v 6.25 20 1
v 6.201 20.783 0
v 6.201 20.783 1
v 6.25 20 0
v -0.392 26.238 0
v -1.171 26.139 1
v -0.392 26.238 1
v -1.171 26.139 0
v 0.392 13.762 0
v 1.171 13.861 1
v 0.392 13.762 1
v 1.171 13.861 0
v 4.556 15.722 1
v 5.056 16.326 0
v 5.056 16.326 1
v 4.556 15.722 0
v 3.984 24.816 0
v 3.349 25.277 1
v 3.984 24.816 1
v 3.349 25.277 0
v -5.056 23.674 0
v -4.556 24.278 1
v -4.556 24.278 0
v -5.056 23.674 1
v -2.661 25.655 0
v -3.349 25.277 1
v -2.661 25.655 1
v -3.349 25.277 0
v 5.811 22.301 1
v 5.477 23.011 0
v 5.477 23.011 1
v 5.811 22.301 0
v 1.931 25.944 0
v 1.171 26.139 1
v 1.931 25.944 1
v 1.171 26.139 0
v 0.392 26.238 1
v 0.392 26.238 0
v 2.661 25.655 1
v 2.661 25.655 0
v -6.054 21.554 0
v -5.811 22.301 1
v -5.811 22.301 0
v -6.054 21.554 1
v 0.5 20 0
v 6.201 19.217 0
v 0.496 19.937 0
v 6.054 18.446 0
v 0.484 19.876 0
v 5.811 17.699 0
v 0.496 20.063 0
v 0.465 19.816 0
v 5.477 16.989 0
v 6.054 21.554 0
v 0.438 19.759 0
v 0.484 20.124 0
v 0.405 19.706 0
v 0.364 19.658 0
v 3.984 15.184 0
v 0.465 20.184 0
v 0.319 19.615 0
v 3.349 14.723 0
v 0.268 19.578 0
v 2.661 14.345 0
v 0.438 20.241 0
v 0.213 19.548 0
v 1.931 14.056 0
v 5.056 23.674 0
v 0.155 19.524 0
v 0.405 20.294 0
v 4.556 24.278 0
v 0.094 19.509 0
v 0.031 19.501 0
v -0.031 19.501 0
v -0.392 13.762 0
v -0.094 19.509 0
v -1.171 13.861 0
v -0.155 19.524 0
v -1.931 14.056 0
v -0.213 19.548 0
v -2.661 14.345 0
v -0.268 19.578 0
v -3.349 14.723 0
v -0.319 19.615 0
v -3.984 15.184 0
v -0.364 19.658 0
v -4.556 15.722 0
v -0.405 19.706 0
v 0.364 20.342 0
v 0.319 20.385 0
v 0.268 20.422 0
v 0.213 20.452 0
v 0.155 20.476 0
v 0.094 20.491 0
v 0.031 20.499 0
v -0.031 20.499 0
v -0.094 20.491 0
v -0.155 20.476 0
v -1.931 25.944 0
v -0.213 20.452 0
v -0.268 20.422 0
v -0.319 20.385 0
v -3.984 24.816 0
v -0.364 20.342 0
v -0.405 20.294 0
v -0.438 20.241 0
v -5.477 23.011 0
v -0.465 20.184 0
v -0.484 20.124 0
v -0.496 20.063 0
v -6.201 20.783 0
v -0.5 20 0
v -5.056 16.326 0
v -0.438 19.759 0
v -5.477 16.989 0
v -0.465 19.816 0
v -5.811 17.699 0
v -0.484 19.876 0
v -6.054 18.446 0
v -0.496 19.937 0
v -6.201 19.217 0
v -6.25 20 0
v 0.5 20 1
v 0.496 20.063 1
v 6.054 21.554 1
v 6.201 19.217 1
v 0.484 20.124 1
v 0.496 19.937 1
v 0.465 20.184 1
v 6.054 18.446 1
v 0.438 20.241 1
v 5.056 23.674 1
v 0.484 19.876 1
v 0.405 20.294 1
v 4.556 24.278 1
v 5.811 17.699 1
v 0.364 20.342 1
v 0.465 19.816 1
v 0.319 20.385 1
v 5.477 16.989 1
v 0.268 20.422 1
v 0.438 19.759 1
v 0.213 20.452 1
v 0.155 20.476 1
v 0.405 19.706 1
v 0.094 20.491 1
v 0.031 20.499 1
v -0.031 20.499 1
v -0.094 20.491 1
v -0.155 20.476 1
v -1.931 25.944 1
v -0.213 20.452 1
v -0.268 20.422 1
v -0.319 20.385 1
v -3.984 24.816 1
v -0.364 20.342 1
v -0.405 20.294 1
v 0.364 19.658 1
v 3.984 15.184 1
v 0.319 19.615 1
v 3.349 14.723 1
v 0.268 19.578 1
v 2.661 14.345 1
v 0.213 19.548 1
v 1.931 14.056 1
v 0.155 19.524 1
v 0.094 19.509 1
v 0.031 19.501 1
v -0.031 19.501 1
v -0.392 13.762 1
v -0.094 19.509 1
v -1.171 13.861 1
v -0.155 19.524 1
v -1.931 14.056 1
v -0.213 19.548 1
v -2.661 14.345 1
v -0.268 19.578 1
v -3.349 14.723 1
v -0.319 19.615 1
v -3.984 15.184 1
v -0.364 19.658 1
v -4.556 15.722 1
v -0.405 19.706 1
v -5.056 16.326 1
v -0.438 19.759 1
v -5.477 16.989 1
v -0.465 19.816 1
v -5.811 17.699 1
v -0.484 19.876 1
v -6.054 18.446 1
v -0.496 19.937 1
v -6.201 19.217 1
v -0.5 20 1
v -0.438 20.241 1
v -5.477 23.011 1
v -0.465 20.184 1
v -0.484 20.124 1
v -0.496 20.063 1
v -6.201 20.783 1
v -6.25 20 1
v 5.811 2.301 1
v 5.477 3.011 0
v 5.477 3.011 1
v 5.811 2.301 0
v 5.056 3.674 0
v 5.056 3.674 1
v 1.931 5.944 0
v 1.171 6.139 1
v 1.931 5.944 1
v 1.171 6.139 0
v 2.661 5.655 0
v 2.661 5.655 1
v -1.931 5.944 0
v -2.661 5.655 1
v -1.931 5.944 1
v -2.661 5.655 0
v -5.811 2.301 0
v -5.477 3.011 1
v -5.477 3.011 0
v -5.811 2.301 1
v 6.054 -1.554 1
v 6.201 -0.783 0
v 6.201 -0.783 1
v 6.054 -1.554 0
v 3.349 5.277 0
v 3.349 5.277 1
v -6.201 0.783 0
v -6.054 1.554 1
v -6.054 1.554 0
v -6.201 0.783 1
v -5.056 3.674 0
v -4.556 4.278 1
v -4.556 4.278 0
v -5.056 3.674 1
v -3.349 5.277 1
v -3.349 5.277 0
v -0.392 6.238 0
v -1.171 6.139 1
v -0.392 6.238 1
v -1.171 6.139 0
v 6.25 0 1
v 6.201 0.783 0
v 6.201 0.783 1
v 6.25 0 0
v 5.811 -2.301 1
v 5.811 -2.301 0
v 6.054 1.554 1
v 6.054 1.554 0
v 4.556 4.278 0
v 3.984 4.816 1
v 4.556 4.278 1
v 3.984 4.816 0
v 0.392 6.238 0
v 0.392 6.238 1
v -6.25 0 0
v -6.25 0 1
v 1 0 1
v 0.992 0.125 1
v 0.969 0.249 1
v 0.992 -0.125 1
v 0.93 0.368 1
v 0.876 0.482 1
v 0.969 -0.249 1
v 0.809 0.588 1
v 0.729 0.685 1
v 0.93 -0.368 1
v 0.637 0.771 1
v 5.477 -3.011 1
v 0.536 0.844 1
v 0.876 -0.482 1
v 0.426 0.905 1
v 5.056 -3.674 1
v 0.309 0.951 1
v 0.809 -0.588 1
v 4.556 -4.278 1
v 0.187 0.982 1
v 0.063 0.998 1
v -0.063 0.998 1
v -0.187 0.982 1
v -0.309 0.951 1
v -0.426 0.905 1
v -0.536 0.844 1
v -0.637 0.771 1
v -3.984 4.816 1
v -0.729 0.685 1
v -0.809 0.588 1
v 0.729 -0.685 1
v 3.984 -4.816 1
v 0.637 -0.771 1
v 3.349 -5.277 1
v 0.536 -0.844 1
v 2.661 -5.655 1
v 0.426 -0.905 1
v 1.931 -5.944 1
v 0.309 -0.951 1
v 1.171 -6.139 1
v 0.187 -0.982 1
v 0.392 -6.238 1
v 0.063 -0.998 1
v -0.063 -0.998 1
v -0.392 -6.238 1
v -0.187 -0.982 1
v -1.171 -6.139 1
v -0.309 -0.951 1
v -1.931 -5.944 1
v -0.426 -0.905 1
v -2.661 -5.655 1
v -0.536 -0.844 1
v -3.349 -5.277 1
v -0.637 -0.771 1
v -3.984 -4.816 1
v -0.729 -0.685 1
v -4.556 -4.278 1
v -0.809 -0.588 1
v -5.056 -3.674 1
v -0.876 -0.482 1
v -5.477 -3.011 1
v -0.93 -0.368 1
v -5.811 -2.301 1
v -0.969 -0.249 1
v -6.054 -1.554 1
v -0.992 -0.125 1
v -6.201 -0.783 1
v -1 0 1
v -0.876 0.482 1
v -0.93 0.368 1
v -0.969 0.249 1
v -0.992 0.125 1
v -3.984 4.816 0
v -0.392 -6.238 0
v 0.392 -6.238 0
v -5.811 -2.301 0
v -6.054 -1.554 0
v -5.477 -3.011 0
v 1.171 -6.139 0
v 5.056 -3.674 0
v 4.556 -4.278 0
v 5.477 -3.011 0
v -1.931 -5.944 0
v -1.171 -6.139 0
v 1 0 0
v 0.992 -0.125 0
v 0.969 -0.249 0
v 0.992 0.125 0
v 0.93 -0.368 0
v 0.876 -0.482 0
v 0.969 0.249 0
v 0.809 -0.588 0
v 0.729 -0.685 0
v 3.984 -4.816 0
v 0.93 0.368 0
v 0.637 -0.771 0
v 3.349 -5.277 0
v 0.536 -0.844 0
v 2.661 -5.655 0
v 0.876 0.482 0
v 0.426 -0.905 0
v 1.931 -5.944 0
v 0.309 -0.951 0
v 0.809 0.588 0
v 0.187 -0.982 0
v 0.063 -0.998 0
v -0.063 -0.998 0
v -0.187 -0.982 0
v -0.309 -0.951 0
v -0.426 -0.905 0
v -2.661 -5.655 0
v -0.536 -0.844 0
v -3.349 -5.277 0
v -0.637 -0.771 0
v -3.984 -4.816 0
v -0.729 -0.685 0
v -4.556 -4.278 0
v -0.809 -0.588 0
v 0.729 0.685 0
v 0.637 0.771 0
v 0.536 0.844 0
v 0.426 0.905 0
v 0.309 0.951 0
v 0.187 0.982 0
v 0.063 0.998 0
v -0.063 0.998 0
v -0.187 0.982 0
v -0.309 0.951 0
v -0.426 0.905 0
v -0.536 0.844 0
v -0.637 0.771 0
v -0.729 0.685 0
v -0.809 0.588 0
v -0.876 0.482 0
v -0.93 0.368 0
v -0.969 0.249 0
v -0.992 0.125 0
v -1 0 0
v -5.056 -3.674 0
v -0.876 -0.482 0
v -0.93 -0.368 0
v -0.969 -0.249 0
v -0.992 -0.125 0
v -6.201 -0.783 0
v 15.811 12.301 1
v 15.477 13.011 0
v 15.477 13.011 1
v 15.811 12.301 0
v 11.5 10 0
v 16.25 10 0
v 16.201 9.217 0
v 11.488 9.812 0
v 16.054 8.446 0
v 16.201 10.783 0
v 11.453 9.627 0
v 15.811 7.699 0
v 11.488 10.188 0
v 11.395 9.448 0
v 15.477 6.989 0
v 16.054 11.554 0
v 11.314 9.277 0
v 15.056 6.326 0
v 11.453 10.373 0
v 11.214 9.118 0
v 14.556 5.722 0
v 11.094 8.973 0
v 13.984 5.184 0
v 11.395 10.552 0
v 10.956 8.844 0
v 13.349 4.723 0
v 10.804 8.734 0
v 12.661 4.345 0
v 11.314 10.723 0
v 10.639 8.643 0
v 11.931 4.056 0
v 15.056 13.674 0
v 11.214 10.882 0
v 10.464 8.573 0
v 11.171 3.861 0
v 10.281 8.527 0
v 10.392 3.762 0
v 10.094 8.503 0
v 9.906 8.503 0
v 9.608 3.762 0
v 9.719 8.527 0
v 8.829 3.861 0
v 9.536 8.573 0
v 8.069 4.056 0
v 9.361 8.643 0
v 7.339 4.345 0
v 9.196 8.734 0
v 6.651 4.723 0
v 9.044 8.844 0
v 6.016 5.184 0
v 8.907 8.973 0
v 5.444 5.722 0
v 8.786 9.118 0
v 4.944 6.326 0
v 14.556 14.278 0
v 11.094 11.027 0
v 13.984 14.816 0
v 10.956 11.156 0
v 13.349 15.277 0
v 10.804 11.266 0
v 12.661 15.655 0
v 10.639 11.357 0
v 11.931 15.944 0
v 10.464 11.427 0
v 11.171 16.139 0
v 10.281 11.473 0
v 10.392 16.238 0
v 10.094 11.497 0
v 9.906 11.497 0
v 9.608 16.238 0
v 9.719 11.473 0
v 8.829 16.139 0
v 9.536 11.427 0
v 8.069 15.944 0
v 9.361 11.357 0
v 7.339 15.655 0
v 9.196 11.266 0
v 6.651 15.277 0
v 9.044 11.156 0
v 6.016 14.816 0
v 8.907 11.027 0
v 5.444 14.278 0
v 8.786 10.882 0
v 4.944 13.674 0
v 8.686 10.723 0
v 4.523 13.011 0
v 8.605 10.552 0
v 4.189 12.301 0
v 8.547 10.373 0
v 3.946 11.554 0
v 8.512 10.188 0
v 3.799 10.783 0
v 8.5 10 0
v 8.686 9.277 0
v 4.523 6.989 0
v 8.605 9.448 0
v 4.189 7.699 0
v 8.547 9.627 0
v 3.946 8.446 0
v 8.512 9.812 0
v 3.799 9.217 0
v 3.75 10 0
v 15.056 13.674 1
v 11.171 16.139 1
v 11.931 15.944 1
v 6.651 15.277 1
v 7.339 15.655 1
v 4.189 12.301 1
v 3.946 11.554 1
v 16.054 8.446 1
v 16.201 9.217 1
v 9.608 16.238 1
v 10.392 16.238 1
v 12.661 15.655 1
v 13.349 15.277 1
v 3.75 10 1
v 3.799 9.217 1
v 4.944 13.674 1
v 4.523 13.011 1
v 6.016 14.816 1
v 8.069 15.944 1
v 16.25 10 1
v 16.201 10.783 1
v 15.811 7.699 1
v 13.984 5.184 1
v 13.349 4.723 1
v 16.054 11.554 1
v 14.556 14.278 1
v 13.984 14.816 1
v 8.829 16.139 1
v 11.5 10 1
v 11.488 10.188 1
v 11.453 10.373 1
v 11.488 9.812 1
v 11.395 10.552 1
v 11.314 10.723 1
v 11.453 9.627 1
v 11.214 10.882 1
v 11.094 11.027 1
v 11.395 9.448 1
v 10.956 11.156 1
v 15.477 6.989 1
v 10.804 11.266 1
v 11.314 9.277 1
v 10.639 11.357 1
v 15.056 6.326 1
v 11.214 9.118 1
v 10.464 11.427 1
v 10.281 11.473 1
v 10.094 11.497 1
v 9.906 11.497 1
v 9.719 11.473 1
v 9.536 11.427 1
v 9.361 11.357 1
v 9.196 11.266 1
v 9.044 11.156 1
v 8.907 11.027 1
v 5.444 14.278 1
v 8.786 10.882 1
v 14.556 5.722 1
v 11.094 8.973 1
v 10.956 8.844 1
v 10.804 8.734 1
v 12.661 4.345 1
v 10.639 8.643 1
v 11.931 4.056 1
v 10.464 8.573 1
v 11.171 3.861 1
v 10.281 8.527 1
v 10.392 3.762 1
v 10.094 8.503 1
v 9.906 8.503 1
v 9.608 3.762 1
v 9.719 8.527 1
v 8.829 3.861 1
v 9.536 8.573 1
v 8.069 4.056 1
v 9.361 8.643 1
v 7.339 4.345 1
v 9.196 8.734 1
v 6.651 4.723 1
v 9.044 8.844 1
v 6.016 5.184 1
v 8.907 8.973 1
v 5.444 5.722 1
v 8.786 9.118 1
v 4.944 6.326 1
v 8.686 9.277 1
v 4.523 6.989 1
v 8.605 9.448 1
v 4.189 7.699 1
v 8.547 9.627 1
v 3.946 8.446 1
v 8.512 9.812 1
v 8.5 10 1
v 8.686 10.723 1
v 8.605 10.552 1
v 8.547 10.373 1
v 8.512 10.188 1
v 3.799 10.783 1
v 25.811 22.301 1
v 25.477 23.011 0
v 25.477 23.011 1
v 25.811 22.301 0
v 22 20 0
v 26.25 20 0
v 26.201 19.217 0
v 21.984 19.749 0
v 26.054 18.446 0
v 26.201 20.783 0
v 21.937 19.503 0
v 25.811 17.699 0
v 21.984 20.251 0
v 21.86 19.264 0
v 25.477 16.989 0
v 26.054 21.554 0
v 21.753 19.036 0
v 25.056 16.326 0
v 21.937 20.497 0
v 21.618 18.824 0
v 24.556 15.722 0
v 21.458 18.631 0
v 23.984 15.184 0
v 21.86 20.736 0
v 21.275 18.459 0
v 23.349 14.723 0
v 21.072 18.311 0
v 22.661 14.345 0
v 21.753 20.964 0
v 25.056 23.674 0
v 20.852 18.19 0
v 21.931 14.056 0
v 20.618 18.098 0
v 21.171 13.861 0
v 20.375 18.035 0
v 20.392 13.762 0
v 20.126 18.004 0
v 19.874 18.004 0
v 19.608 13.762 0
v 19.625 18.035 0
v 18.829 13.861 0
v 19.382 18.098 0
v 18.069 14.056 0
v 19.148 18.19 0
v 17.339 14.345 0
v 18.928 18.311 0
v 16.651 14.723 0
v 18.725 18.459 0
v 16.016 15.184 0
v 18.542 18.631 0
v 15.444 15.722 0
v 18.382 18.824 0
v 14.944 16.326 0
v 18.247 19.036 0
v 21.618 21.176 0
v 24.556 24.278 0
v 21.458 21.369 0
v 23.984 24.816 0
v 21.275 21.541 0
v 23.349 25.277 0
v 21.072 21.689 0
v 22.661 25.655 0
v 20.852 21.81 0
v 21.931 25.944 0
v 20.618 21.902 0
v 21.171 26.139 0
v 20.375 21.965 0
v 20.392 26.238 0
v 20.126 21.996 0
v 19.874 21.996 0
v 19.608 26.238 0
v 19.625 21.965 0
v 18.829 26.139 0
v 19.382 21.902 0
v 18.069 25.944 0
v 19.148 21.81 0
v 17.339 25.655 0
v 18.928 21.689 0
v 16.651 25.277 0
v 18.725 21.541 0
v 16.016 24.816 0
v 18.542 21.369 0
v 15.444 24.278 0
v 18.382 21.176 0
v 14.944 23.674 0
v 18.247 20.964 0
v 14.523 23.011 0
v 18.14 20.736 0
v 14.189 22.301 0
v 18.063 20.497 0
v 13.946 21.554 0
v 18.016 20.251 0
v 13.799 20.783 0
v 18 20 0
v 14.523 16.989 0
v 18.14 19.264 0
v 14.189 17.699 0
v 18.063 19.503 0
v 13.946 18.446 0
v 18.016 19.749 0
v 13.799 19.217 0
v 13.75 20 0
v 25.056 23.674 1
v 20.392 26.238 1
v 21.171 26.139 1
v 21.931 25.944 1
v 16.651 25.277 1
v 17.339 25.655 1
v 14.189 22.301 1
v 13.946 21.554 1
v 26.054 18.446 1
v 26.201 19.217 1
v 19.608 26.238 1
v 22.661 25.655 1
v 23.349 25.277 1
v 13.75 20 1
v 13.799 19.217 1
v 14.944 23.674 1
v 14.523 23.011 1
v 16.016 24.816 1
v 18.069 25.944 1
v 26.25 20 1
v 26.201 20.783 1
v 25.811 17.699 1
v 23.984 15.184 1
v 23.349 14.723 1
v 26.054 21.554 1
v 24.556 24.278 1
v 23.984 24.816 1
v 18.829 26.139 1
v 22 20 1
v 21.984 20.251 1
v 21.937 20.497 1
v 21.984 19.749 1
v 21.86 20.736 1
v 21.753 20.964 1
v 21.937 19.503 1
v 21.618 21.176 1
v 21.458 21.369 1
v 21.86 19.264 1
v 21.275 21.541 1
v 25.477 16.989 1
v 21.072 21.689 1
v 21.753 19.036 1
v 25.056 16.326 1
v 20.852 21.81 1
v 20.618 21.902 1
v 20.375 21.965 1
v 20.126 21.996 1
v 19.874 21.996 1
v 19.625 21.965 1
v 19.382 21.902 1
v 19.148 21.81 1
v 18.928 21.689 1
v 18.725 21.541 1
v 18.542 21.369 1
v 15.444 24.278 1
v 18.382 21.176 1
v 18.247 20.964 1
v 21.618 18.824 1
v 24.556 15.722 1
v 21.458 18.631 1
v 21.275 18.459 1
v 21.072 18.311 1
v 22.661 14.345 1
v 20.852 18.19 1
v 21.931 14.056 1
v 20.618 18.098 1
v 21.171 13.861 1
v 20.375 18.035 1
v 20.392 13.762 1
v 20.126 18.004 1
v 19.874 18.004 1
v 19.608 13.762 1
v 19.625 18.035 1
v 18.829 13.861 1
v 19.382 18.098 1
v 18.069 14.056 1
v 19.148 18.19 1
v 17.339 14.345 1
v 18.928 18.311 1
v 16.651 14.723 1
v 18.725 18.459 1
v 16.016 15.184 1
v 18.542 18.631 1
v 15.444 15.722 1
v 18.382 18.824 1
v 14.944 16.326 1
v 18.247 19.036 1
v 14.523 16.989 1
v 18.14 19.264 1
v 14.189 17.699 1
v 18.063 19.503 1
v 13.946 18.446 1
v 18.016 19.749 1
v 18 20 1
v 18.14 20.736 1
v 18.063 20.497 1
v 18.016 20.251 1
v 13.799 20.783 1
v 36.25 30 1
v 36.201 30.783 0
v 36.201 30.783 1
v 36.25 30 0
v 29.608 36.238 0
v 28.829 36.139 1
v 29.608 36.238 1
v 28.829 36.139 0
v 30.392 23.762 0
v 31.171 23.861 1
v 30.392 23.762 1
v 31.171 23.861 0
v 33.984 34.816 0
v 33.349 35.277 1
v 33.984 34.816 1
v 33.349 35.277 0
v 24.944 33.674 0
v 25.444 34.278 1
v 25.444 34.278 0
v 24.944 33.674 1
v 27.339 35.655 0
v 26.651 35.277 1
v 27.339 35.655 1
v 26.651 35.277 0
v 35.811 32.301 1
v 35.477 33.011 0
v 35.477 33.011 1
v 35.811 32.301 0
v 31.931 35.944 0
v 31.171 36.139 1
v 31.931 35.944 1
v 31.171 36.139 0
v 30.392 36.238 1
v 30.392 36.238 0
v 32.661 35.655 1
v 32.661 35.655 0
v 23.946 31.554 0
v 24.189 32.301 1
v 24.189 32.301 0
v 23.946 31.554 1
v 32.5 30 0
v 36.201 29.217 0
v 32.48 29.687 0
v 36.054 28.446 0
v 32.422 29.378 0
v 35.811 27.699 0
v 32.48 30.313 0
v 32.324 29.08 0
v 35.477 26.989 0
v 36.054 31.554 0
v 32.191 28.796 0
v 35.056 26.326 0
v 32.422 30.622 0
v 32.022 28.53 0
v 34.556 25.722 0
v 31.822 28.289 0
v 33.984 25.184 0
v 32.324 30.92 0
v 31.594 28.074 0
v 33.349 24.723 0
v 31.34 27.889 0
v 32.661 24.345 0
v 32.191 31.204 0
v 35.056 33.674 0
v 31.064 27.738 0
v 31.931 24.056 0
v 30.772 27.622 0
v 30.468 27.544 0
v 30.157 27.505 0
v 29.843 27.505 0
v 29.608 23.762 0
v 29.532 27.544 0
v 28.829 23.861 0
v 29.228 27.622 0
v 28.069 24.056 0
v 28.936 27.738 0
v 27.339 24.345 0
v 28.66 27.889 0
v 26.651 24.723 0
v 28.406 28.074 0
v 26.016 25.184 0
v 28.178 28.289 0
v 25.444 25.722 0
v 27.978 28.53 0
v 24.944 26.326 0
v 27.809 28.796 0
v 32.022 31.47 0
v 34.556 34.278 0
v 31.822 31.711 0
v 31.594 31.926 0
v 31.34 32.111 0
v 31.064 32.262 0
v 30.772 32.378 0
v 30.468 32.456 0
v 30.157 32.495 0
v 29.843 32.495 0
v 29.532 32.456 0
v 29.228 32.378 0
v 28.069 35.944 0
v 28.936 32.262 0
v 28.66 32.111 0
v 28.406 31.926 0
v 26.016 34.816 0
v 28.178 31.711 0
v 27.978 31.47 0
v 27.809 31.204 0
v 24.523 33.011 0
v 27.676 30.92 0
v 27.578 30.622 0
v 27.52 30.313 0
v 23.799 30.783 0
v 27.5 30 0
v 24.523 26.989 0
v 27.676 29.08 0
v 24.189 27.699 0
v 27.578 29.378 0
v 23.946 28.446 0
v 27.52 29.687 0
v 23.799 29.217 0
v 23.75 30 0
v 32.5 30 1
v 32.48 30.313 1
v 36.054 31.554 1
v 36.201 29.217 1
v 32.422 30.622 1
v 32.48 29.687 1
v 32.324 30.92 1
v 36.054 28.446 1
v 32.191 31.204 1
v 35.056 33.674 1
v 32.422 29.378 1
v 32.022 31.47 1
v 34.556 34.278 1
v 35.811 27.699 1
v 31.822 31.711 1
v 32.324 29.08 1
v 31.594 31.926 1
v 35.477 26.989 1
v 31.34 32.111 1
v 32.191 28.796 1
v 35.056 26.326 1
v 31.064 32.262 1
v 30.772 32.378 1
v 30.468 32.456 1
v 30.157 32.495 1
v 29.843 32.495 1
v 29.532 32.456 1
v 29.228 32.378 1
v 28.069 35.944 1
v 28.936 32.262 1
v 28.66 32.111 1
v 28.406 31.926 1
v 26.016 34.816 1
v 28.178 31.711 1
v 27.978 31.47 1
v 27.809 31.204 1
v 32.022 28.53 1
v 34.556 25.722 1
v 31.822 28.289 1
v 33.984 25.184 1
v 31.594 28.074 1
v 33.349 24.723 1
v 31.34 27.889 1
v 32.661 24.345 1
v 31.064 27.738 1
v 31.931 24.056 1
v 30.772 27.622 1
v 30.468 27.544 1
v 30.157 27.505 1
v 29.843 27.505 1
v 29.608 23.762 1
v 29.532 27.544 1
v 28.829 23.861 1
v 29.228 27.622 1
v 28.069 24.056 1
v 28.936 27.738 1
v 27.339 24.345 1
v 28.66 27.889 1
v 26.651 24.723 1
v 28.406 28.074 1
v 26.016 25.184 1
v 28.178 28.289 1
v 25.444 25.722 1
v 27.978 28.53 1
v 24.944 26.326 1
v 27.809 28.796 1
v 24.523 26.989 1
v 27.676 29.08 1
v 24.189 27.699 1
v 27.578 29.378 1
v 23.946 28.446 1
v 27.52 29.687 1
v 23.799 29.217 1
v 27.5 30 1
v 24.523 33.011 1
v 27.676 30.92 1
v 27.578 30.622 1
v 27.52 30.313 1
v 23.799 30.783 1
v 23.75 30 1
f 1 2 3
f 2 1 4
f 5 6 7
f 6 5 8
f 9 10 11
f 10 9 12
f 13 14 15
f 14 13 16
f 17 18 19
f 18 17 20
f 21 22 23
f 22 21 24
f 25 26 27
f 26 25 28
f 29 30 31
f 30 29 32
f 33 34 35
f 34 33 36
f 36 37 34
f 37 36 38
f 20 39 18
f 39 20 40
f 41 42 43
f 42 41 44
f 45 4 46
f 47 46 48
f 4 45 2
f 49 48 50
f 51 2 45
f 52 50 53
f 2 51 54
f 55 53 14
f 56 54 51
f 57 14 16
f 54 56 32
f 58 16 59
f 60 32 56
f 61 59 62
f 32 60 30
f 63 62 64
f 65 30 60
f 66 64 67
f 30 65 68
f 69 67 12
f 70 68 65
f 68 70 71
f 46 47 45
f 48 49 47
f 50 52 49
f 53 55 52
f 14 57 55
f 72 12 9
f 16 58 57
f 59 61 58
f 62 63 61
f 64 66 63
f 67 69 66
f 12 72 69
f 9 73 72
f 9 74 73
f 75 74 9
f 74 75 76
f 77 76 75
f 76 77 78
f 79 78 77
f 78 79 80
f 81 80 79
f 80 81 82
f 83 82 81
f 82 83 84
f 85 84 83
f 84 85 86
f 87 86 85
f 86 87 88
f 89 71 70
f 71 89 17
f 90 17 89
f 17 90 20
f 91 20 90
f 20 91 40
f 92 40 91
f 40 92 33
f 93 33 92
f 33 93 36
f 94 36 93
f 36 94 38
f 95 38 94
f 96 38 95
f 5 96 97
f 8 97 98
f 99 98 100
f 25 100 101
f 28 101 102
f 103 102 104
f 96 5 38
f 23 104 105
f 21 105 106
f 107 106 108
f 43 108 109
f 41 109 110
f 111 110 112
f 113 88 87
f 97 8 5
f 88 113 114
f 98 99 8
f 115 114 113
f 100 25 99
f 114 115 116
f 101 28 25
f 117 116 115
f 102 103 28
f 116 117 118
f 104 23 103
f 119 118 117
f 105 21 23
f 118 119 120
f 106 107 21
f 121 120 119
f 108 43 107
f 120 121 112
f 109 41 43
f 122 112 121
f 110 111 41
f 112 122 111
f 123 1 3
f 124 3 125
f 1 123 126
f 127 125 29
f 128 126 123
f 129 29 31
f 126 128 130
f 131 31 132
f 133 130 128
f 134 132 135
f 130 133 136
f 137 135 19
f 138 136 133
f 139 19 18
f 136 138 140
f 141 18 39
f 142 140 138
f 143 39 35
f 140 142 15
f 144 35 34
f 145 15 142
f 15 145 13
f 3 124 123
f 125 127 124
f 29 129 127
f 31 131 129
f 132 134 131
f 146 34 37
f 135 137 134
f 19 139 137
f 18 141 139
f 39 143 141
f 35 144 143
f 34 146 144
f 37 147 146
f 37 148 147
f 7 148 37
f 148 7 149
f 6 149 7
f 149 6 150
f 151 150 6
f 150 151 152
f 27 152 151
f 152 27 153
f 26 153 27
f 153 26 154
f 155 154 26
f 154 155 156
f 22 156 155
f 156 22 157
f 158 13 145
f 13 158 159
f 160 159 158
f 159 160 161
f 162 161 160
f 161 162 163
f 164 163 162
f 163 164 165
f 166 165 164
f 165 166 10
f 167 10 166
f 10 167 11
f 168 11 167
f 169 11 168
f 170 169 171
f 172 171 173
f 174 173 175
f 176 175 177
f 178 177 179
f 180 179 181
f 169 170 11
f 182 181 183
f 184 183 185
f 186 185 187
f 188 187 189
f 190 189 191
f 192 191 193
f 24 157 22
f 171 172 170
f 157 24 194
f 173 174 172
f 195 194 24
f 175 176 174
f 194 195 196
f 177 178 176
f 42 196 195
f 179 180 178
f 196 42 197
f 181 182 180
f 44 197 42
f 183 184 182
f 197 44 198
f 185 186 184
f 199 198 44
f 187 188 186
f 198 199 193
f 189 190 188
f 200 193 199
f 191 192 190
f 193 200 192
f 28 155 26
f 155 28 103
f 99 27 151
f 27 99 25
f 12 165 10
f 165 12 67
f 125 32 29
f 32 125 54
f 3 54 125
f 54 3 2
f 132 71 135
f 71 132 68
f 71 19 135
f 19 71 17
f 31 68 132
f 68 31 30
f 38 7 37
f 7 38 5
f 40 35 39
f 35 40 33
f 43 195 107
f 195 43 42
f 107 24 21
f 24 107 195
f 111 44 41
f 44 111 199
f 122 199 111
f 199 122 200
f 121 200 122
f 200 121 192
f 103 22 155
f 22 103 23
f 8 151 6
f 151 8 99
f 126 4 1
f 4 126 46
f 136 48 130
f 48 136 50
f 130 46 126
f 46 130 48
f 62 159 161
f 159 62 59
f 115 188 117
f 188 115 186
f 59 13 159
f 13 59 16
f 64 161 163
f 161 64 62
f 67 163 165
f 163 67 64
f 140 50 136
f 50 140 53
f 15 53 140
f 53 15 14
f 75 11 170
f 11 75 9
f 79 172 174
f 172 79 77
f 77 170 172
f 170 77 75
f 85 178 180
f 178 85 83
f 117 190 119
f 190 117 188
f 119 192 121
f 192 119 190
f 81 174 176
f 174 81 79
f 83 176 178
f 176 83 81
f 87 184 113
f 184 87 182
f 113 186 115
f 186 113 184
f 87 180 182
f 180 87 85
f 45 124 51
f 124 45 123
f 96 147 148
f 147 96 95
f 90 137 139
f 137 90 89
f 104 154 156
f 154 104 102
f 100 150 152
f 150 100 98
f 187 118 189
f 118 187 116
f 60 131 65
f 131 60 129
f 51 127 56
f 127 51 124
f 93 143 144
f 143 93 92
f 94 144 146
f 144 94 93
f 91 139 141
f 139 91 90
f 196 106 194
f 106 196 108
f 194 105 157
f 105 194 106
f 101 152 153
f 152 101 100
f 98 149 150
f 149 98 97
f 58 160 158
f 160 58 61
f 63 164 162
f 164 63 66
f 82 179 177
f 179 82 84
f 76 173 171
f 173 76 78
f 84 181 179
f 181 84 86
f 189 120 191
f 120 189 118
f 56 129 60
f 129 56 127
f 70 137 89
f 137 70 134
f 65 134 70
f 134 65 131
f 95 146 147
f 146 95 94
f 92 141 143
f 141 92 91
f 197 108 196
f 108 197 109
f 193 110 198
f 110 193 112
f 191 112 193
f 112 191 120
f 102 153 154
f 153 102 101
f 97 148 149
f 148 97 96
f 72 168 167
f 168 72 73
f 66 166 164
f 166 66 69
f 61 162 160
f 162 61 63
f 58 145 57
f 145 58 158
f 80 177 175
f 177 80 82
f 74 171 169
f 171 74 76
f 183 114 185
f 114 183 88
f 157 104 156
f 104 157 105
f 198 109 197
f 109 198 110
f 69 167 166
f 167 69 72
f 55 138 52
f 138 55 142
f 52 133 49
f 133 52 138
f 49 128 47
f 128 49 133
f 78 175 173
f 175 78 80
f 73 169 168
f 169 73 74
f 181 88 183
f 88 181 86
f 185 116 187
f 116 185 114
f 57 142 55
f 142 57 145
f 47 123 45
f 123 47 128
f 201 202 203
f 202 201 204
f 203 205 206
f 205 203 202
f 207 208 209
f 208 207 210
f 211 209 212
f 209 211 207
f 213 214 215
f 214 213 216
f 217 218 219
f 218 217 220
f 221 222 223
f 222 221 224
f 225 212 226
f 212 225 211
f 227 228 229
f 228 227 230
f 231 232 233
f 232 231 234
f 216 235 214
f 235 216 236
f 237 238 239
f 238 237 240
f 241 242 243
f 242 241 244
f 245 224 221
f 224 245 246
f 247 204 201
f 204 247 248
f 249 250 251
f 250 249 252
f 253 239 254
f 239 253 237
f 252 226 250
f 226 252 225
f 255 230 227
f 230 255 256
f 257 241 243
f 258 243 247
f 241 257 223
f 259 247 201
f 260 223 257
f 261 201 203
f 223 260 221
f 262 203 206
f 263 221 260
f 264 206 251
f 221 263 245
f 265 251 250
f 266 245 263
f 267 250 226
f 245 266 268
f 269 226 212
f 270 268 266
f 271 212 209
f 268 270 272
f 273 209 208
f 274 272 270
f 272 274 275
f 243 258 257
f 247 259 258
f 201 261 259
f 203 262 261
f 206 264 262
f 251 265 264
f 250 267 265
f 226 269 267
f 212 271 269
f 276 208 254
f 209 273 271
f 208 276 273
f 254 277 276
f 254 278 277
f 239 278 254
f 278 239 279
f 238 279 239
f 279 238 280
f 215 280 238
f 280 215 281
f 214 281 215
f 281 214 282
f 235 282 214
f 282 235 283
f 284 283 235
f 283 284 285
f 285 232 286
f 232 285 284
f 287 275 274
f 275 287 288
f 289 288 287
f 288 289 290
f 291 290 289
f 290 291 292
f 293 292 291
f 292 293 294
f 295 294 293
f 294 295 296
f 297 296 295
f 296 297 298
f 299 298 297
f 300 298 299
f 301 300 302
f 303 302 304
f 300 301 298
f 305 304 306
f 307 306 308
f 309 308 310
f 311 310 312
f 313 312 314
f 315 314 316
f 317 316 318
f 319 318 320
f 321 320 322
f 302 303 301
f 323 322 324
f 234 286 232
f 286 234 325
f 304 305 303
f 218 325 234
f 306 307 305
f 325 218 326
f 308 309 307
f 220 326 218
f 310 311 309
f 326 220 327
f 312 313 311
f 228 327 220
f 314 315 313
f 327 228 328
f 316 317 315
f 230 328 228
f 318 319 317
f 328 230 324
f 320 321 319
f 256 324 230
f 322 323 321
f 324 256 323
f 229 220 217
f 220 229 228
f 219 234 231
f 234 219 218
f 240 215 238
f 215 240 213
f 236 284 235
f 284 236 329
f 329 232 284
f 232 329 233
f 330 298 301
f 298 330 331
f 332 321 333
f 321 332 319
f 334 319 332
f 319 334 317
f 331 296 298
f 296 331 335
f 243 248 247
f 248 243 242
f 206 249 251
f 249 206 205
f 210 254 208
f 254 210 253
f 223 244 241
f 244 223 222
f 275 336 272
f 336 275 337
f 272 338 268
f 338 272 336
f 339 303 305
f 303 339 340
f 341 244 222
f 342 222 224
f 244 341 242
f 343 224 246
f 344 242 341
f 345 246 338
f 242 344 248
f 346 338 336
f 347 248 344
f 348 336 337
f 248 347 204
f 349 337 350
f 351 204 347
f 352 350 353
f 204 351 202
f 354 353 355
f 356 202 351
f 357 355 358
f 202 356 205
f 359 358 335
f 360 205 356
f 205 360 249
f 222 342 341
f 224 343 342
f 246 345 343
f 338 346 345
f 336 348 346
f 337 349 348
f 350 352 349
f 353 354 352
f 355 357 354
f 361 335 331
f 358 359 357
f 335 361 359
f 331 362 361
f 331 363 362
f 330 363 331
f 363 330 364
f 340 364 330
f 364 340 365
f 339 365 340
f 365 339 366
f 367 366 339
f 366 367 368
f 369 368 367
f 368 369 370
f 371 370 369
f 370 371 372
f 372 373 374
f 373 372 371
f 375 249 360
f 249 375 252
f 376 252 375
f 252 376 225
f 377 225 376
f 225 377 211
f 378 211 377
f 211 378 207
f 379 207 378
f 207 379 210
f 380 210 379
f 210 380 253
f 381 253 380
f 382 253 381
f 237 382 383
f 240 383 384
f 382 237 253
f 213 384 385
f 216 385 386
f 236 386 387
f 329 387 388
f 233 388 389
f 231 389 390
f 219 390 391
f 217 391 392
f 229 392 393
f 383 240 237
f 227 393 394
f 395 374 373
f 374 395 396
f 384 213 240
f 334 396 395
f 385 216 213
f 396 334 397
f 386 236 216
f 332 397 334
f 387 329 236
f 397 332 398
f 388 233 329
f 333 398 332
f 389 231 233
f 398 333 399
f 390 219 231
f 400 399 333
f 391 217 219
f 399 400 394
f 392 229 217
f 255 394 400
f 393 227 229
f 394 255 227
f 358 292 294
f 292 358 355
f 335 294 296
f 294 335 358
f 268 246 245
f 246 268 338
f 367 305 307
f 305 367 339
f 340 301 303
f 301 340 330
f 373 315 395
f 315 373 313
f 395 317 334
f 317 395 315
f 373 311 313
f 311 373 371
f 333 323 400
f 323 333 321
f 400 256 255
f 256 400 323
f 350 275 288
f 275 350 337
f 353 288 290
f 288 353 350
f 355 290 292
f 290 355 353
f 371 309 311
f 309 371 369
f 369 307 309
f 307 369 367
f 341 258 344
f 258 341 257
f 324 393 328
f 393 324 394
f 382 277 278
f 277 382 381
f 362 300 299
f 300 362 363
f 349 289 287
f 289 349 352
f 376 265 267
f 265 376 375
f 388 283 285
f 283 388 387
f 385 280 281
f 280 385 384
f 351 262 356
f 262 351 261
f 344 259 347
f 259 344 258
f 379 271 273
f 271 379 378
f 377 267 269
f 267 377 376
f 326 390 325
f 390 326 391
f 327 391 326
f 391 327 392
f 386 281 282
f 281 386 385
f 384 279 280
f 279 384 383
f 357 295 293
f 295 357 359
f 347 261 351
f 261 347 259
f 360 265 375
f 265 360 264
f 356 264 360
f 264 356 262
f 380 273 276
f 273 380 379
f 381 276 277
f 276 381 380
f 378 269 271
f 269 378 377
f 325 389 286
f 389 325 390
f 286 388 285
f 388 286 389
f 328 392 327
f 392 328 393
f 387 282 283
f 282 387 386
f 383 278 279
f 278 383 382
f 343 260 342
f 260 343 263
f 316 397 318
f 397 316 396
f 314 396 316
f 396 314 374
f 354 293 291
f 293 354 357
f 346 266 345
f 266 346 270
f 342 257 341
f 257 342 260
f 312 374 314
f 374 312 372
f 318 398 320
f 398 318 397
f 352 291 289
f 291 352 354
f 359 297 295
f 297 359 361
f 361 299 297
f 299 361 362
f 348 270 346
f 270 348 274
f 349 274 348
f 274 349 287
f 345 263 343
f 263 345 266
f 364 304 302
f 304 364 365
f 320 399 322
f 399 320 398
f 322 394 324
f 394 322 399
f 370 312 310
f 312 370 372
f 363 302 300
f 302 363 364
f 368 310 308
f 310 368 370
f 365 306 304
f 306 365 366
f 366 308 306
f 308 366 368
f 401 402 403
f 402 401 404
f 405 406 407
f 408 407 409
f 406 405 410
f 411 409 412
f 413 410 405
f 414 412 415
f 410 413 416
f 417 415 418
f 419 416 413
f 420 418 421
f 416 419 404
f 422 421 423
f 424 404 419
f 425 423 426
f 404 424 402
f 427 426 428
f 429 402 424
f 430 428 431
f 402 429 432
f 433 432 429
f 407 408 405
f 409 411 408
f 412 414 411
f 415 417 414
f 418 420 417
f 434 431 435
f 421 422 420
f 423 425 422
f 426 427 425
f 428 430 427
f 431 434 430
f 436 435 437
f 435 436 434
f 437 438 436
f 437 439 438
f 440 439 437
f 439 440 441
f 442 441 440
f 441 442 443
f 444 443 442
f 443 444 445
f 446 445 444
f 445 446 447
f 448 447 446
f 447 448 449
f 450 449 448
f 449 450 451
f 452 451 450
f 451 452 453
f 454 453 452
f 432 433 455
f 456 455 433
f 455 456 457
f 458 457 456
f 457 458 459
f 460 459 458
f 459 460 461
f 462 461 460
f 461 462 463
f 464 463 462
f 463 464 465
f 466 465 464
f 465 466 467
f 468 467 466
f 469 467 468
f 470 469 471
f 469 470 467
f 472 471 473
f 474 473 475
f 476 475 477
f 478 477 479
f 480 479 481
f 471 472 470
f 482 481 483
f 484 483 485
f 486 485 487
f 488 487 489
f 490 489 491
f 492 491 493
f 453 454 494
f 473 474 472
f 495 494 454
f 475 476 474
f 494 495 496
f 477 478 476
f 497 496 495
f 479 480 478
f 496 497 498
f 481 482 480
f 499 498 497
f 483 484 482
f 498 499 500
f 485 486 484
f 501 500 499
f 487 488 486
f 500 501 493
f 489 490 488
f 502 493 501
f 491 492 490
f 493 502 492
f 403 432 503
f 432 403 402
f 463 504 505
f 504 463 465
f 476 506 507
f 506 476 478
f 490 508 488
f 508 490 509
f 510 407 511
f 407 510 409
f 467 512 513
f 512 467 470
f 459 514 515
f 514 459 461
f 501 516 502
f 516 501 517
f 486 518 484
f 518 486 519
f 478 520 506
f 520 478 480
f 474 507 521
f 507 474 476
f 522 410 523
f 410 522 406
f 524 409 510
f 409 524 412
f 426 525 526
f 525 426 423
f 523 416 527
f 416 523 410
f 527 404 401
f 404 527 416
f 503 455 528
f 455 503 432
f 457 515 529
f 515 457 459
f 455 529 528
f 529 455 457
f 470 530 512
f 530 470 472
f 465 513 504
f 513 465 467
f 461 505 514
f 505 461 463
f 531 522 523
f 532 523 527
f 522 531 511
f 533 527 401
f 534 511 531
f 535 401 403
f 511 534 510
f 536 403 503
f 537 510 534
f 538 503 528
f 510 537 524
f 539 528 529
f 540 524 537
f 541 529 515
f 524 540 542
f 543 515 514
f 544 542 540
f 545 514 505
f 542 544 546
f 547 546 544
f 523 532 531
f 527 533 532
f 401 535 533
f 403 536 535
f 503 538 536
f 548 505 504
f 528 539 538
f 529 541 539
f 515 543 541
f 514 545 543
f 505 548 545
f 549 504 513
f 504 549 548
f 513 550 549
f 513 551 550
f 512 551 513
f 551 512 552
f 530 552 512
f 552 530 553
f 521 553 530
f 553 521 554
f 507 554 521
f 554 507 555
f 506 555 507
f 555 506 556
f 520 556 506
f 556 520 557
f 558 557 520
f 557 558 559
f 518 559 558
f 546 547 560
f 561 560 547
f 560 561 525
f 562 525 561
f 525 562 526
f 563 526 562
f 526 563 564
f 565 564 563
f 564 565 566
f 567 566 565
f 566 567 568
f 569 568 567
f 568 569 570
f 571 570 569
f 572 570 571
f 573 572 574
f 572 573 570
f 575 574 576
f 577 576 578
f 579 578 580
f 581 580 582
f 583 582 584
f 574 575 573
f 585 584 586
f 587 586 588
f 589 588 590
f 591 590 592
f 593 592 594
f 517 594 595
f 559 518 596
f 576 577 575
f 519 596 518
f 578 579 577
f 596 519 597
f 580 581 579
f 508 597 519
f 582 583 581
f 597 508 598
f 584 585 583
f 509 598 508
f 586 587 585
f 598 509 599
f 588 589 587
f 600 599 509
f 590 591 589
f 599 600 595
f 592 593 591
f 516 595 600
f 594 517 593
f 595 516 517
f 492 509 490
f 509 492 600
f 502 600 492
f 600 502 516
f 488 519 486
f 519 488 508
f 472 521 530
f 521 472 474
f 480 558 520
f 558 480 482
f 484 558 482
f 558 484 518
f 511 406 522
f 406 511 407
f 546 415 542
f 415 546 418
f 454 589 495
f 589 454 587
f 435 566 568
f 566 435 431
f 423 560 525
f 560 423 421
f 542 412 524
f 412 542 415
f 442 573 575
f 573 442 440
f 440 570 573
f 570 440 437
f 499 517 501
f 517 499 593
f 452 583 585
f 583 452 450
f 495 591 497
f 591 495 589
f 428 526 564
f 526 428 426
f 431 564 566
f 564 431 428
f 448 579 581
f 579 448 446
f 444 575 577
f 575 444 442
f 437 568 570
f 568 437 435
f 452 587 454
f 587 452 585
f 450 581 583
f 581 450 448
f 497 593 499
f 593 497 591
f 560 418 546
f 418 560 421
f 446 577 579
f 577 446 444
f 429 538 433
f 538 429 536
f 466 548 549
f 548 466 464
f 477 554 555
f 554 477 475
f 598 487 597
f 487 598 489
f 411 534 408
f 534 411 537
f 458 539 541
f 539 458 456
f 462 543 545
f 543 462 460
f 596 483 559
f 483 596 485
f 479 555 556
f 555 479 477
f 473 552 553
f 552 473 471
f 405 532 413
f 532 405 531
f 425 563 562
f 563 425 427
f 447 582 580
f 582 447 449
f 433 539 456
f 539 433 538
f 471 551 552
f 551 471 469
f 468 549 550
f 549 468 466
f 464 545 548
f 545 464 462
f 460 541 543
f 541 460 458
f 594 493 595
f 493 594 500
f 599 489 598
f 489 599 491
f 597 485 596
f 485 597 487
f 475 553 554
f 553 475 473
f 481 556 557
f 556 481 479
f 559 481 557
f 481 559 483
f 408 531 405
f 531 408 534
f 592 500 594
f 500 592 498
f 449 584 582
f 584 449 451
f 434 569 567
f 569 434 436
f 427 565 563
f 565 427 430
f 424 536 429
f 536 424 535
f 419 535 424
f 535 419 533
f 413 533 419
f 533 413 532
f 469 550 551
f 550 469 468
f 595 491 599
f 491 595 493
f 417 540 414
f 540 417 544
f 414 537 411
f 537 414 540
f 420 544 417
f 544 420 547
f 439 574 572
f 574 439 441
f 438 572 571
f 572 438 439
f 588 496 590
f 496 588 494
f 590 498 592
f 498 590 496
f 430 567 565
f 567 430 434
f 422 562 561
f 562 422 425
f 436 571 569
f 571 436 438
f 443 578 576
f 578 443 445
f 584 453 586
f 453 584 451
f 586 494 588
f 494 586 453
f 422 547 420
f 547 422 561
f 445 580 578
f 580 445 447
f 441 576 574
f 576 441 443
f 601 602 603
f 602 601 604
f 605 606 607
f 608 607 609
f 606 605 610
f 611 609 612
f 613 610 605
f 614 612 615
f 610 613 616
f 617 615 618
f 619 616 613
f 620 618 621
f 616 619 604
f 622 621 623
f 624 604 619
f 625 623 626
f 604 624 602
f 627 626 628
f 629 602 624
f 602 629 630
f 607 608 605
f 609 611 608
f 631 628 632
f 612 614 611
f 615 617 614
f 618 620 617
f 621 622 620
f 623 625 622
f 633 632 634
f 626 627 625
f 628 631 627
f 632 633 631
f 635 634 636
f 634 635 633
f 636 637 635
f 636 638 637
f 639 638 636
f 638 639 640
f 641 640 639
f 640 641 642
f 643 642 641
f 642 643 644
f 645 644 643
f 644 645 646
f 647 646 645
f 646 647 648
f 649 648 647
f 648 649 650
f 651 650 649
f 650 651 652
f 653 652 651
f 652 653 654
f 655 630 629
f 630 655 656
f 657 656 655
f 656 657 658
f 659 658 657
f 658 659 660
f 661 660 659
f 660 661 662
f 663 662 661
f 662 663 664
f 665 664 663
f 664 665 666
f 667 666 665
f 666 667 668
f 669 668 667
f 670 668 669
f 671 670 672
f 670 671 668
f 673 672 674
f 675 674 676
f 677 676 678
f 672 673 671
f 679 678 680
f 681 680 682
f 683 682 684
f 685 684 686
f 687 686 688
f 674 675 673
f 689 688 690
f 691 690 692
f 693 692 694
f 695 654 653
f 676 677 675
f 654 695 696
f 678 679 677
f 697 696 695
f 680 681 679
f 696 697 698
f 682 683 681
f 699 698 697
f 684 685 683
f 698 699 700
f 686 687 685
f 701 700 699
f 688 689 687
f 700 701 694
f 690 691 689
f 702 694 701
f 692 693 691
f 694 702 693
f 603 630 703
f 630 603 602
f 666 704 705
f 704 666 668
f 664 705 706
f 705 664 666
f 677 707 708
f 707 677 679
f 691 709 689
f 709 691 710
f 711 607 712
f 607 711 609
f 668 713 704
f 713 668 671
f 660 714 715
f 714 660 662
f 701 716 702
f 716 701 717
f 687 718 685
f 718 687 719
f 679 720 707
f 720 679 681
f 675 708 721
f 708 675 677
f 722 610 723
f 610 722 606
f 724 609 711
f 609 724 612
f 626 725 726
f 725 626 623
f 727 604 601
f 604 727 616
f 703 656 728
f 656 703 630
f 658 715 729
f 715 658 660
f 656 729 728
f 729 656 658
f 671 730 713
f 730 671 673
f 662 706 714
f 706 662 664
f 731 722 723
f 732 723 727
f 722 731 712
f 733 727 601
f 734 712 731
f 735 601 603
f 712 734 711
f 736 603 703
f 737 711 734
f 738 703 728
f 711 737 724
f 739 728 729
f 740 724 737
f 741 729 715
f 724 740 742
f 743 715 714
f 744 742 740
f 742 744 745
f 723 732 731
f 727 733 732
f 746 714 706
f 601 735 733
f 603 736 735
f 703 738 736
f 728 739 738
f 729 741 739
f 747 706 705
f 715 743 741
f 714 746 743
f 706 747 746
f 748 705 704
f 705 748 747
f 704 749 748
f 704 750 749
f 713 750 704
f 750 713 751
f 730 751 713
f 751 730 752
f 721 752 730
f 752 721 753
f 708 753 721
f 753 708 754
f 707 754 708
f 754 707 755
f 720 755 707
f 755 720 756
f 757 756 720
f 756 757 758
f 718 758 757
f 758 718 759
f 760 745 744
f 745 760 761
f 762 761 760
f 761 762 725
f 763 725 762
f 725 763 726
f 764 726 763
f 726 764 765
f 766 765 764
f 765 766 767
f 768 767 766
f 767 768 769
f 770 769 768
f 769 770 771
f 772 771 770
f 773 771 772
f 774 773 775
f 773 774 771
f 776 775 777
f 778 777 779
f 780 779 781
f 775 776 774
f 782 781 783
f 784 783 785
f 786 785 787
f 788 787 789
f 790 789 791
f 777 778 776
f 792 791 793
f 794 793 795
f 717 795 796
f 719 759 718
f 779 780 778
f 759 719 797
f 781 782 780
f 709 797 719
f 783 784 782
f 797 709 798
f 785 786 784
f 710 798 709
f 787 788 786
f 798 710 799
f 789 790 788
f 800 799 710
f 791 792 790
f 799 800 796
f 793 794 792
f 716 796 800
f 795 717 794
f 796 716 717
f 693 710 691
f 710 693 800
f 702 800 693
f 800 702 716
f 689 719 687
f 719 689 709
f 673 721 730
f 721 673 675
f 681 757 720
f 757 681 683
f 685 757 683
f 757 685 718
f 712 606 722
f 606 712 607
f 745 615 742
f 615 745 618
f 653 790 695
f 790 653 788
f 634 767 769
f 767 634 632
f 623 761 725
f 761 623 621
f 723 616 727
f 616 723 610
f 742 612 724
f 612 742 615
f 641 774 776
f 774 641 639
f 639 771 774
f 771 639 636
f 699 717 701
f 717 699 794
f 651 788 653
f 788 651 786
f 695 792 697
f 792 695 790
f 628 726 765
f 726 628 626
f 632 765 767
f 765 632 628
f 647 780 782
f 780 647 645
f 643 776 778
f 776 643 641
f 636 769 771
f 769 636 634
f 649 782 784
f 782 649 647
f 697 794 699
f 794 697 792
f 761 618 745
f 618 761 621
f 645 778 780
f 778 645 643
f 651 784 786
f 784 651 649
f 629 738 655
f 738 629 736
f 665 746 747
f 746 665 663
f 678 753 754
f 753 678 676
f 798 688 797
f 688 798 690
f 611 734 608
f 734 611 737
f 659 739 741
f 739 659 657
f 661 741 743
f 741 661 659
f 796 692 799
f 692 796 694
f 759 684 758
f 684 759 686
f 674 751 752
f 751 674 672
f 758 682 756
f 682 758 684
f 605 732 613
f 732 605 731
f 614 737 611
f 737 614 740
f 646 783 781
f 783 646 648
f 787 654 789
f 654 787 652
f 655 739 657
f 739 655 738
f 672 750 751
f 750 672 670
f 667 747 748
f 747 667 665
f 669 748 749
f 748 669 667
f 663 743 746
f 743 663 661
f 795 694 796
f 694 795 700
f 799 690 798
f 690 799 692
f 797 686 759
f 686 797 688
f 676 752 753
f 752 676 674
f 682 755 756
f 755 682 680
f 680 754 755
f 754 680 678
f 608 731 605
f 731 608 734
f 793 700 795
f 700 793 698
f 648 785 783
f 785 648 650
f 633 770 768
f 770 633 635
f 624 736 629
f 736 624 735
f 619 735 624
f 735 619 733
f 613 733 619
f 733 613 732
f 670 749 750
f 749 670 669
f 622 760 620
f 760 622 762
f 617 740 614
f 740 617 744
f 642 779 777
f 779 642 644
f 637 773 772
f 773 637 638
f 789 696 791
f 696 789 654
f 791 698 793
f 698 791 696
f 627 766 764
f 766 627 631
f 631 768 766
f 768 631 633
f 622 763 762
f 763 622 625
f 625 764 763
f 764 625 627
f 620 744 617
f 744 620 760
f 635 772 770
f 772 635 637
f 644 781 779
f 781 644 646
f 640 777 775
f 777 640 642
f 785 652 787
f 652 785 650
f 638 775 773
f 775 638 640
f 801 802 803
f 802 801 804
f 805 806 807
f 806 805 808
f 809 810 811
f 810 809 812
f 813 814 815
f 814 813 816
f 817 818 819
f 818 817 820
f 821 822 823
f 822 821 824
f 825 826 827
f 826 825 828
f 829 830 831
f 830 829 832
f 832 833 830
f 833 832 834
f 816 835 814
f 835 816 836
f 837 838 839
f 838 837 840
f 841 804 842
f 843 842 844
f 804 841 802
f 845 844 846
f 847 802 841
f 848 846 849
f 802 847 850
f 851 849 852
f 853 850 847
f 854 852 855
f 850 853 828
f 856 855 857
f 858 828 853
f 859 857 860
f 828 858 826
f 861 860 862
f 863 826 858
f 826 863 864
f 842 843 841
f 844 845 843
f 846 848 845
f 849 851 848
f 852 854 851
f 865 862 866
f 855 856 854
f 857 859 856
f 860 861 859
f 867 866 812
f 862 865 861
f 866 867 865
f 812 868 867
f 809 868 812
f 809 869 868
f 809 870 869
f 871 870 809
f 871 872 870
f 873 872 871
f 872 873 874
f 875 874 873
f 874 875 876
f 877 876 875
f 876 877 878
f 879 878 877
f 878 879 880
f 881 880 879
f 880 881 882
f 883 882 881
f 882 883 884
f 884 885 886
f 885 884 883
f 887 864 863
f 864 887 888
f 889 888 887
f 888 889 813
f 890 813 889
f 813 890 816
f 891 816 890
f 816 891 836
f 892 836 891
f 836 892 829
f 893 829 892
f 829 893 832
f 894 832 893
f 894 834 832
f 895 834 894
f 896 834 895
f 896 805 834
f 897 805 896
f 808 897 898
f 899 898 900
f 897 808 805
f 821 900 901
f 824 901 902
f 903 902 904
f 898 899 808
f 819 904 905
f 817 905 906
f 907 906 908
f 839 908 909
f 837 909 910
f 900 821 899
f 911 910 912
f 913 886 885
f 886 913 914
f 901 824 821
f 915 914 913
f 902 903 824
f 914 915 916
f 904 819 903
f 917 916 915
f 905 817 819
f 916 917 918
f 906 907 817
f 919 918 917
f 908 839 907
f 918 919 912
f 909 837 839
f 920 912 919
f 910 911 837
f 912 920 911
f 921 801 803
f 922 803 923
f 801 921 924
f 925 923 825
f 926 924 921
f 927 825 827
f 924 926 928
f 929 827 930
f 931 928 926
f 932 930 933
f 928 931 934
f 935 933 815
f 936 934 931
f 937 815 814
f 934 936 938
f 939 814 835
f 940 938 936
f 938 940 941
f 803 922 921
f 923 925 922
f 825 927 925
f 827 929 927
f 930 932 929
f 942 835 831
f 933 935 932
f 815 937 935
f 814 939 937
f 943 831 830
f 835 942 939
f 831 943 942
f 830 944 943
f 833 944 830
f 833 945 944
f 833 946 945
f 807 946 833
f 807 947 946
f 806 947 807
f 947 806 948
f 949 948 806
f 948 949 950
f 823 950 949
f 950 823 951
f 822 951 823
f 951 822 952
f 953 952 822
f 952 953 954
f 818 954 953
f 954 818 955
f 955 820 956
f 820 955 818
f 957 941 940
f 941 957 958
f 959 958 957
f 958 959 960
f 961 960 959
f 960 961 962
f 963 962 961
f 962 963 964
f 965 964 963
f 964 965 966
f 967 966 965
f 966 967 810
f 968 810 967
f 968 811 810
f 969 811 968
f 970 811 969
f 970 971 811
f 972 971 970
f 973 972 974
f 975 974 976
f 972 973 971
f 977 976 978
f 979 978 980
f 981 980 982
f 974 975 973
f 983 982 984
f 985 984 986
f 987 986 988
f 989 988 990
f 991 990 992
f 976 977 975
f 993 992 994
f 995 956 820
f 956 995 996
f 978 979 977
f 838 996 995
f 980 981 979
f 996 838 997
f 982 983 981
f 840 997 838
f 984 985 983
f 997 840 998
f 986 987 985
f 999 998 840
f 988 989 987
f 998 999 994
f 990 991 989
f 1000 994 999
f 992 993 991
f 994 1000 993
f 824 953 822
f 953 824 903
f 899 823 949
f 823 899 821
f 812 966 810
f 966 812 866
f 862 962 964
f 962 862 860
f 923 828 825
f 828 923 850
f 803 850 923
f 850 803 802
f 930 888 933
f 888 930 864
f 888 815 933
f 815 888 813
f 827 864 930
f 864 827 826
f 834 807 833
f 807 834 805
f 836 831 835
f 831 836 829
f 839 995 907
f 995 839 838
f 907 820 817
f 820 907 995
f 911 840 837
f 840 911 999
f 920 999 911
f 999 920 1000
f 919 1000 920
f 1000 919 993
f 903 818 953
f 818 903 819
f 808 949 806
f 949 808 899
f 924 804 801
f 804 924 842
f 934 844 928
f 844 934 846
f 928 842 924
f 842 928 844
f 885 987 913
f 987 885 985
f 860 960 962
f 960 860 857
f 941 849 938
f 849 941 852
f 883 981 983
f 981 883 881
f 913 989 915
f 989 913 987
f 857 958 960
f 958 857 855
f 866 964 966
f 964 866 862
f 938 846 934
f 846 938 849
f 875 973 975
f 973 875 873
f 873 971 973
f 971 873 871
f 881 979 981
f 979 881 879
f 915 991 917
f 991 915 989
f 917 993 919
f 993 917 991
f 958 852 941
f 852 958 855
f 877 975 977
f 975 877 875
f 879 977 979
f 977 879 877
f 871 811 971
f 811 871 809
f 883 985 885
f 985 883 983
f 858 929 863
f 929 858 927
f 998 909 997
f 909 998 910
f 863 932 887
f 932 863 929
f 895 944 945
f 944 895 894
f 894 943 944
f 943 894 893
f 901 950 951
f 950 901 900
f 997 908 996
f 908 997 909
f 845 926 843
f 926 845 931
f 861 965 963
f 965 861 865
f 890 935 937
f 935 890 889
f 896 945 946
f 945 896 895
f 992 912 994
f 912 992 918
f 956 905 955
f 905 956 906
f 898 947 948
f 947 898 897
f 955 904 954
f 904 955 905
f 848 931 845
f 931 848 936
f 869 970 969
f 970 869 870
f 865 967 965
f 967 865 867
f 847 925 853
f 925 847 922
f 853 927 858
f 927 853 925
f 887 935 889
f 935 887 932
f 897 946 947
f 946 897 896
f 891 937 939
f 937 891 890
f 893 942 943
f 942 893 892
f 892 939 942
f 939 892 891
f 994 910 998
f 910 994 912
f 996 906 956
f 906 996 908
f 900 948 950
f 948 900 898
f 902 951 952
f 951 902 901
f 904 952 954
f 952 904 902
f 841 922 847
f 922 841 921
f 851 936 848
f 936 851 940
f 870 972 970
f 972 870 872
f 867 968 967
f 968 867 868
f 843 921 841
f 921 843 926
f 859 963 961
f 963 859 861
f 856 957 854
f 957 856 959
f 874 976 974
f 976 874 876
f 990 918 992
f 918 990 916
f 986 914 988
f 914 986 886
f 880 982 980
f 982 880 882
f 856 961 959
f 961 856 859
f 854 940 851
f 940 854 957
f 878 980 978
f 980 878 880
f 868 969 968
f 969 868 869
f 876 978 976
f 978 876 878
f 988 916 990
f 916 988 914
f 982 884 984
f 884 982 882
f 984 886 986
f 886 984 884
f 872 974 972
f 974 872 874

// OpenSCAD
// Diaphragm Test 


// 1mm
color([1,0,1])
difference() {
  translate([0,20,0]) cylinder(h=1, d=12.5,$fn=50);
  translate([0,20,-1]) cylinder(h=3, d=1,$fn=50);
}


// 2mm
color([1,0,0])
difference() {
  translate([0,0,0]) cylinder(h=1, d=12.5,$fn=50);
  translate([0,0,-1]) cylinder(h=3, d=2,$fn=50);
}

// 3mm
color([0,1,0])
difference() {
  translate([10,10,0]) cylinder(h=1, d=12.5,$fn=50);
  translate([10,10,-1]) cylinder(h=3, d=3,$fn=50);
}

// 4mm
color([0,0,1])
difference() {
  translate([20,20,0]) cylinder(h=1, d=12.5,$fn=50);
  translate([20,20,-1]) cylinder(h=4, d=4,$fn=50);
}

// 5mm
color([1,.5,1])
difference() {
  translate([30,30,0]) cylinder(h=1, d=12.5,$fn=50);
  translate([30,30,-1]) cylinder(h=4, d=5,$fn=50);
}
